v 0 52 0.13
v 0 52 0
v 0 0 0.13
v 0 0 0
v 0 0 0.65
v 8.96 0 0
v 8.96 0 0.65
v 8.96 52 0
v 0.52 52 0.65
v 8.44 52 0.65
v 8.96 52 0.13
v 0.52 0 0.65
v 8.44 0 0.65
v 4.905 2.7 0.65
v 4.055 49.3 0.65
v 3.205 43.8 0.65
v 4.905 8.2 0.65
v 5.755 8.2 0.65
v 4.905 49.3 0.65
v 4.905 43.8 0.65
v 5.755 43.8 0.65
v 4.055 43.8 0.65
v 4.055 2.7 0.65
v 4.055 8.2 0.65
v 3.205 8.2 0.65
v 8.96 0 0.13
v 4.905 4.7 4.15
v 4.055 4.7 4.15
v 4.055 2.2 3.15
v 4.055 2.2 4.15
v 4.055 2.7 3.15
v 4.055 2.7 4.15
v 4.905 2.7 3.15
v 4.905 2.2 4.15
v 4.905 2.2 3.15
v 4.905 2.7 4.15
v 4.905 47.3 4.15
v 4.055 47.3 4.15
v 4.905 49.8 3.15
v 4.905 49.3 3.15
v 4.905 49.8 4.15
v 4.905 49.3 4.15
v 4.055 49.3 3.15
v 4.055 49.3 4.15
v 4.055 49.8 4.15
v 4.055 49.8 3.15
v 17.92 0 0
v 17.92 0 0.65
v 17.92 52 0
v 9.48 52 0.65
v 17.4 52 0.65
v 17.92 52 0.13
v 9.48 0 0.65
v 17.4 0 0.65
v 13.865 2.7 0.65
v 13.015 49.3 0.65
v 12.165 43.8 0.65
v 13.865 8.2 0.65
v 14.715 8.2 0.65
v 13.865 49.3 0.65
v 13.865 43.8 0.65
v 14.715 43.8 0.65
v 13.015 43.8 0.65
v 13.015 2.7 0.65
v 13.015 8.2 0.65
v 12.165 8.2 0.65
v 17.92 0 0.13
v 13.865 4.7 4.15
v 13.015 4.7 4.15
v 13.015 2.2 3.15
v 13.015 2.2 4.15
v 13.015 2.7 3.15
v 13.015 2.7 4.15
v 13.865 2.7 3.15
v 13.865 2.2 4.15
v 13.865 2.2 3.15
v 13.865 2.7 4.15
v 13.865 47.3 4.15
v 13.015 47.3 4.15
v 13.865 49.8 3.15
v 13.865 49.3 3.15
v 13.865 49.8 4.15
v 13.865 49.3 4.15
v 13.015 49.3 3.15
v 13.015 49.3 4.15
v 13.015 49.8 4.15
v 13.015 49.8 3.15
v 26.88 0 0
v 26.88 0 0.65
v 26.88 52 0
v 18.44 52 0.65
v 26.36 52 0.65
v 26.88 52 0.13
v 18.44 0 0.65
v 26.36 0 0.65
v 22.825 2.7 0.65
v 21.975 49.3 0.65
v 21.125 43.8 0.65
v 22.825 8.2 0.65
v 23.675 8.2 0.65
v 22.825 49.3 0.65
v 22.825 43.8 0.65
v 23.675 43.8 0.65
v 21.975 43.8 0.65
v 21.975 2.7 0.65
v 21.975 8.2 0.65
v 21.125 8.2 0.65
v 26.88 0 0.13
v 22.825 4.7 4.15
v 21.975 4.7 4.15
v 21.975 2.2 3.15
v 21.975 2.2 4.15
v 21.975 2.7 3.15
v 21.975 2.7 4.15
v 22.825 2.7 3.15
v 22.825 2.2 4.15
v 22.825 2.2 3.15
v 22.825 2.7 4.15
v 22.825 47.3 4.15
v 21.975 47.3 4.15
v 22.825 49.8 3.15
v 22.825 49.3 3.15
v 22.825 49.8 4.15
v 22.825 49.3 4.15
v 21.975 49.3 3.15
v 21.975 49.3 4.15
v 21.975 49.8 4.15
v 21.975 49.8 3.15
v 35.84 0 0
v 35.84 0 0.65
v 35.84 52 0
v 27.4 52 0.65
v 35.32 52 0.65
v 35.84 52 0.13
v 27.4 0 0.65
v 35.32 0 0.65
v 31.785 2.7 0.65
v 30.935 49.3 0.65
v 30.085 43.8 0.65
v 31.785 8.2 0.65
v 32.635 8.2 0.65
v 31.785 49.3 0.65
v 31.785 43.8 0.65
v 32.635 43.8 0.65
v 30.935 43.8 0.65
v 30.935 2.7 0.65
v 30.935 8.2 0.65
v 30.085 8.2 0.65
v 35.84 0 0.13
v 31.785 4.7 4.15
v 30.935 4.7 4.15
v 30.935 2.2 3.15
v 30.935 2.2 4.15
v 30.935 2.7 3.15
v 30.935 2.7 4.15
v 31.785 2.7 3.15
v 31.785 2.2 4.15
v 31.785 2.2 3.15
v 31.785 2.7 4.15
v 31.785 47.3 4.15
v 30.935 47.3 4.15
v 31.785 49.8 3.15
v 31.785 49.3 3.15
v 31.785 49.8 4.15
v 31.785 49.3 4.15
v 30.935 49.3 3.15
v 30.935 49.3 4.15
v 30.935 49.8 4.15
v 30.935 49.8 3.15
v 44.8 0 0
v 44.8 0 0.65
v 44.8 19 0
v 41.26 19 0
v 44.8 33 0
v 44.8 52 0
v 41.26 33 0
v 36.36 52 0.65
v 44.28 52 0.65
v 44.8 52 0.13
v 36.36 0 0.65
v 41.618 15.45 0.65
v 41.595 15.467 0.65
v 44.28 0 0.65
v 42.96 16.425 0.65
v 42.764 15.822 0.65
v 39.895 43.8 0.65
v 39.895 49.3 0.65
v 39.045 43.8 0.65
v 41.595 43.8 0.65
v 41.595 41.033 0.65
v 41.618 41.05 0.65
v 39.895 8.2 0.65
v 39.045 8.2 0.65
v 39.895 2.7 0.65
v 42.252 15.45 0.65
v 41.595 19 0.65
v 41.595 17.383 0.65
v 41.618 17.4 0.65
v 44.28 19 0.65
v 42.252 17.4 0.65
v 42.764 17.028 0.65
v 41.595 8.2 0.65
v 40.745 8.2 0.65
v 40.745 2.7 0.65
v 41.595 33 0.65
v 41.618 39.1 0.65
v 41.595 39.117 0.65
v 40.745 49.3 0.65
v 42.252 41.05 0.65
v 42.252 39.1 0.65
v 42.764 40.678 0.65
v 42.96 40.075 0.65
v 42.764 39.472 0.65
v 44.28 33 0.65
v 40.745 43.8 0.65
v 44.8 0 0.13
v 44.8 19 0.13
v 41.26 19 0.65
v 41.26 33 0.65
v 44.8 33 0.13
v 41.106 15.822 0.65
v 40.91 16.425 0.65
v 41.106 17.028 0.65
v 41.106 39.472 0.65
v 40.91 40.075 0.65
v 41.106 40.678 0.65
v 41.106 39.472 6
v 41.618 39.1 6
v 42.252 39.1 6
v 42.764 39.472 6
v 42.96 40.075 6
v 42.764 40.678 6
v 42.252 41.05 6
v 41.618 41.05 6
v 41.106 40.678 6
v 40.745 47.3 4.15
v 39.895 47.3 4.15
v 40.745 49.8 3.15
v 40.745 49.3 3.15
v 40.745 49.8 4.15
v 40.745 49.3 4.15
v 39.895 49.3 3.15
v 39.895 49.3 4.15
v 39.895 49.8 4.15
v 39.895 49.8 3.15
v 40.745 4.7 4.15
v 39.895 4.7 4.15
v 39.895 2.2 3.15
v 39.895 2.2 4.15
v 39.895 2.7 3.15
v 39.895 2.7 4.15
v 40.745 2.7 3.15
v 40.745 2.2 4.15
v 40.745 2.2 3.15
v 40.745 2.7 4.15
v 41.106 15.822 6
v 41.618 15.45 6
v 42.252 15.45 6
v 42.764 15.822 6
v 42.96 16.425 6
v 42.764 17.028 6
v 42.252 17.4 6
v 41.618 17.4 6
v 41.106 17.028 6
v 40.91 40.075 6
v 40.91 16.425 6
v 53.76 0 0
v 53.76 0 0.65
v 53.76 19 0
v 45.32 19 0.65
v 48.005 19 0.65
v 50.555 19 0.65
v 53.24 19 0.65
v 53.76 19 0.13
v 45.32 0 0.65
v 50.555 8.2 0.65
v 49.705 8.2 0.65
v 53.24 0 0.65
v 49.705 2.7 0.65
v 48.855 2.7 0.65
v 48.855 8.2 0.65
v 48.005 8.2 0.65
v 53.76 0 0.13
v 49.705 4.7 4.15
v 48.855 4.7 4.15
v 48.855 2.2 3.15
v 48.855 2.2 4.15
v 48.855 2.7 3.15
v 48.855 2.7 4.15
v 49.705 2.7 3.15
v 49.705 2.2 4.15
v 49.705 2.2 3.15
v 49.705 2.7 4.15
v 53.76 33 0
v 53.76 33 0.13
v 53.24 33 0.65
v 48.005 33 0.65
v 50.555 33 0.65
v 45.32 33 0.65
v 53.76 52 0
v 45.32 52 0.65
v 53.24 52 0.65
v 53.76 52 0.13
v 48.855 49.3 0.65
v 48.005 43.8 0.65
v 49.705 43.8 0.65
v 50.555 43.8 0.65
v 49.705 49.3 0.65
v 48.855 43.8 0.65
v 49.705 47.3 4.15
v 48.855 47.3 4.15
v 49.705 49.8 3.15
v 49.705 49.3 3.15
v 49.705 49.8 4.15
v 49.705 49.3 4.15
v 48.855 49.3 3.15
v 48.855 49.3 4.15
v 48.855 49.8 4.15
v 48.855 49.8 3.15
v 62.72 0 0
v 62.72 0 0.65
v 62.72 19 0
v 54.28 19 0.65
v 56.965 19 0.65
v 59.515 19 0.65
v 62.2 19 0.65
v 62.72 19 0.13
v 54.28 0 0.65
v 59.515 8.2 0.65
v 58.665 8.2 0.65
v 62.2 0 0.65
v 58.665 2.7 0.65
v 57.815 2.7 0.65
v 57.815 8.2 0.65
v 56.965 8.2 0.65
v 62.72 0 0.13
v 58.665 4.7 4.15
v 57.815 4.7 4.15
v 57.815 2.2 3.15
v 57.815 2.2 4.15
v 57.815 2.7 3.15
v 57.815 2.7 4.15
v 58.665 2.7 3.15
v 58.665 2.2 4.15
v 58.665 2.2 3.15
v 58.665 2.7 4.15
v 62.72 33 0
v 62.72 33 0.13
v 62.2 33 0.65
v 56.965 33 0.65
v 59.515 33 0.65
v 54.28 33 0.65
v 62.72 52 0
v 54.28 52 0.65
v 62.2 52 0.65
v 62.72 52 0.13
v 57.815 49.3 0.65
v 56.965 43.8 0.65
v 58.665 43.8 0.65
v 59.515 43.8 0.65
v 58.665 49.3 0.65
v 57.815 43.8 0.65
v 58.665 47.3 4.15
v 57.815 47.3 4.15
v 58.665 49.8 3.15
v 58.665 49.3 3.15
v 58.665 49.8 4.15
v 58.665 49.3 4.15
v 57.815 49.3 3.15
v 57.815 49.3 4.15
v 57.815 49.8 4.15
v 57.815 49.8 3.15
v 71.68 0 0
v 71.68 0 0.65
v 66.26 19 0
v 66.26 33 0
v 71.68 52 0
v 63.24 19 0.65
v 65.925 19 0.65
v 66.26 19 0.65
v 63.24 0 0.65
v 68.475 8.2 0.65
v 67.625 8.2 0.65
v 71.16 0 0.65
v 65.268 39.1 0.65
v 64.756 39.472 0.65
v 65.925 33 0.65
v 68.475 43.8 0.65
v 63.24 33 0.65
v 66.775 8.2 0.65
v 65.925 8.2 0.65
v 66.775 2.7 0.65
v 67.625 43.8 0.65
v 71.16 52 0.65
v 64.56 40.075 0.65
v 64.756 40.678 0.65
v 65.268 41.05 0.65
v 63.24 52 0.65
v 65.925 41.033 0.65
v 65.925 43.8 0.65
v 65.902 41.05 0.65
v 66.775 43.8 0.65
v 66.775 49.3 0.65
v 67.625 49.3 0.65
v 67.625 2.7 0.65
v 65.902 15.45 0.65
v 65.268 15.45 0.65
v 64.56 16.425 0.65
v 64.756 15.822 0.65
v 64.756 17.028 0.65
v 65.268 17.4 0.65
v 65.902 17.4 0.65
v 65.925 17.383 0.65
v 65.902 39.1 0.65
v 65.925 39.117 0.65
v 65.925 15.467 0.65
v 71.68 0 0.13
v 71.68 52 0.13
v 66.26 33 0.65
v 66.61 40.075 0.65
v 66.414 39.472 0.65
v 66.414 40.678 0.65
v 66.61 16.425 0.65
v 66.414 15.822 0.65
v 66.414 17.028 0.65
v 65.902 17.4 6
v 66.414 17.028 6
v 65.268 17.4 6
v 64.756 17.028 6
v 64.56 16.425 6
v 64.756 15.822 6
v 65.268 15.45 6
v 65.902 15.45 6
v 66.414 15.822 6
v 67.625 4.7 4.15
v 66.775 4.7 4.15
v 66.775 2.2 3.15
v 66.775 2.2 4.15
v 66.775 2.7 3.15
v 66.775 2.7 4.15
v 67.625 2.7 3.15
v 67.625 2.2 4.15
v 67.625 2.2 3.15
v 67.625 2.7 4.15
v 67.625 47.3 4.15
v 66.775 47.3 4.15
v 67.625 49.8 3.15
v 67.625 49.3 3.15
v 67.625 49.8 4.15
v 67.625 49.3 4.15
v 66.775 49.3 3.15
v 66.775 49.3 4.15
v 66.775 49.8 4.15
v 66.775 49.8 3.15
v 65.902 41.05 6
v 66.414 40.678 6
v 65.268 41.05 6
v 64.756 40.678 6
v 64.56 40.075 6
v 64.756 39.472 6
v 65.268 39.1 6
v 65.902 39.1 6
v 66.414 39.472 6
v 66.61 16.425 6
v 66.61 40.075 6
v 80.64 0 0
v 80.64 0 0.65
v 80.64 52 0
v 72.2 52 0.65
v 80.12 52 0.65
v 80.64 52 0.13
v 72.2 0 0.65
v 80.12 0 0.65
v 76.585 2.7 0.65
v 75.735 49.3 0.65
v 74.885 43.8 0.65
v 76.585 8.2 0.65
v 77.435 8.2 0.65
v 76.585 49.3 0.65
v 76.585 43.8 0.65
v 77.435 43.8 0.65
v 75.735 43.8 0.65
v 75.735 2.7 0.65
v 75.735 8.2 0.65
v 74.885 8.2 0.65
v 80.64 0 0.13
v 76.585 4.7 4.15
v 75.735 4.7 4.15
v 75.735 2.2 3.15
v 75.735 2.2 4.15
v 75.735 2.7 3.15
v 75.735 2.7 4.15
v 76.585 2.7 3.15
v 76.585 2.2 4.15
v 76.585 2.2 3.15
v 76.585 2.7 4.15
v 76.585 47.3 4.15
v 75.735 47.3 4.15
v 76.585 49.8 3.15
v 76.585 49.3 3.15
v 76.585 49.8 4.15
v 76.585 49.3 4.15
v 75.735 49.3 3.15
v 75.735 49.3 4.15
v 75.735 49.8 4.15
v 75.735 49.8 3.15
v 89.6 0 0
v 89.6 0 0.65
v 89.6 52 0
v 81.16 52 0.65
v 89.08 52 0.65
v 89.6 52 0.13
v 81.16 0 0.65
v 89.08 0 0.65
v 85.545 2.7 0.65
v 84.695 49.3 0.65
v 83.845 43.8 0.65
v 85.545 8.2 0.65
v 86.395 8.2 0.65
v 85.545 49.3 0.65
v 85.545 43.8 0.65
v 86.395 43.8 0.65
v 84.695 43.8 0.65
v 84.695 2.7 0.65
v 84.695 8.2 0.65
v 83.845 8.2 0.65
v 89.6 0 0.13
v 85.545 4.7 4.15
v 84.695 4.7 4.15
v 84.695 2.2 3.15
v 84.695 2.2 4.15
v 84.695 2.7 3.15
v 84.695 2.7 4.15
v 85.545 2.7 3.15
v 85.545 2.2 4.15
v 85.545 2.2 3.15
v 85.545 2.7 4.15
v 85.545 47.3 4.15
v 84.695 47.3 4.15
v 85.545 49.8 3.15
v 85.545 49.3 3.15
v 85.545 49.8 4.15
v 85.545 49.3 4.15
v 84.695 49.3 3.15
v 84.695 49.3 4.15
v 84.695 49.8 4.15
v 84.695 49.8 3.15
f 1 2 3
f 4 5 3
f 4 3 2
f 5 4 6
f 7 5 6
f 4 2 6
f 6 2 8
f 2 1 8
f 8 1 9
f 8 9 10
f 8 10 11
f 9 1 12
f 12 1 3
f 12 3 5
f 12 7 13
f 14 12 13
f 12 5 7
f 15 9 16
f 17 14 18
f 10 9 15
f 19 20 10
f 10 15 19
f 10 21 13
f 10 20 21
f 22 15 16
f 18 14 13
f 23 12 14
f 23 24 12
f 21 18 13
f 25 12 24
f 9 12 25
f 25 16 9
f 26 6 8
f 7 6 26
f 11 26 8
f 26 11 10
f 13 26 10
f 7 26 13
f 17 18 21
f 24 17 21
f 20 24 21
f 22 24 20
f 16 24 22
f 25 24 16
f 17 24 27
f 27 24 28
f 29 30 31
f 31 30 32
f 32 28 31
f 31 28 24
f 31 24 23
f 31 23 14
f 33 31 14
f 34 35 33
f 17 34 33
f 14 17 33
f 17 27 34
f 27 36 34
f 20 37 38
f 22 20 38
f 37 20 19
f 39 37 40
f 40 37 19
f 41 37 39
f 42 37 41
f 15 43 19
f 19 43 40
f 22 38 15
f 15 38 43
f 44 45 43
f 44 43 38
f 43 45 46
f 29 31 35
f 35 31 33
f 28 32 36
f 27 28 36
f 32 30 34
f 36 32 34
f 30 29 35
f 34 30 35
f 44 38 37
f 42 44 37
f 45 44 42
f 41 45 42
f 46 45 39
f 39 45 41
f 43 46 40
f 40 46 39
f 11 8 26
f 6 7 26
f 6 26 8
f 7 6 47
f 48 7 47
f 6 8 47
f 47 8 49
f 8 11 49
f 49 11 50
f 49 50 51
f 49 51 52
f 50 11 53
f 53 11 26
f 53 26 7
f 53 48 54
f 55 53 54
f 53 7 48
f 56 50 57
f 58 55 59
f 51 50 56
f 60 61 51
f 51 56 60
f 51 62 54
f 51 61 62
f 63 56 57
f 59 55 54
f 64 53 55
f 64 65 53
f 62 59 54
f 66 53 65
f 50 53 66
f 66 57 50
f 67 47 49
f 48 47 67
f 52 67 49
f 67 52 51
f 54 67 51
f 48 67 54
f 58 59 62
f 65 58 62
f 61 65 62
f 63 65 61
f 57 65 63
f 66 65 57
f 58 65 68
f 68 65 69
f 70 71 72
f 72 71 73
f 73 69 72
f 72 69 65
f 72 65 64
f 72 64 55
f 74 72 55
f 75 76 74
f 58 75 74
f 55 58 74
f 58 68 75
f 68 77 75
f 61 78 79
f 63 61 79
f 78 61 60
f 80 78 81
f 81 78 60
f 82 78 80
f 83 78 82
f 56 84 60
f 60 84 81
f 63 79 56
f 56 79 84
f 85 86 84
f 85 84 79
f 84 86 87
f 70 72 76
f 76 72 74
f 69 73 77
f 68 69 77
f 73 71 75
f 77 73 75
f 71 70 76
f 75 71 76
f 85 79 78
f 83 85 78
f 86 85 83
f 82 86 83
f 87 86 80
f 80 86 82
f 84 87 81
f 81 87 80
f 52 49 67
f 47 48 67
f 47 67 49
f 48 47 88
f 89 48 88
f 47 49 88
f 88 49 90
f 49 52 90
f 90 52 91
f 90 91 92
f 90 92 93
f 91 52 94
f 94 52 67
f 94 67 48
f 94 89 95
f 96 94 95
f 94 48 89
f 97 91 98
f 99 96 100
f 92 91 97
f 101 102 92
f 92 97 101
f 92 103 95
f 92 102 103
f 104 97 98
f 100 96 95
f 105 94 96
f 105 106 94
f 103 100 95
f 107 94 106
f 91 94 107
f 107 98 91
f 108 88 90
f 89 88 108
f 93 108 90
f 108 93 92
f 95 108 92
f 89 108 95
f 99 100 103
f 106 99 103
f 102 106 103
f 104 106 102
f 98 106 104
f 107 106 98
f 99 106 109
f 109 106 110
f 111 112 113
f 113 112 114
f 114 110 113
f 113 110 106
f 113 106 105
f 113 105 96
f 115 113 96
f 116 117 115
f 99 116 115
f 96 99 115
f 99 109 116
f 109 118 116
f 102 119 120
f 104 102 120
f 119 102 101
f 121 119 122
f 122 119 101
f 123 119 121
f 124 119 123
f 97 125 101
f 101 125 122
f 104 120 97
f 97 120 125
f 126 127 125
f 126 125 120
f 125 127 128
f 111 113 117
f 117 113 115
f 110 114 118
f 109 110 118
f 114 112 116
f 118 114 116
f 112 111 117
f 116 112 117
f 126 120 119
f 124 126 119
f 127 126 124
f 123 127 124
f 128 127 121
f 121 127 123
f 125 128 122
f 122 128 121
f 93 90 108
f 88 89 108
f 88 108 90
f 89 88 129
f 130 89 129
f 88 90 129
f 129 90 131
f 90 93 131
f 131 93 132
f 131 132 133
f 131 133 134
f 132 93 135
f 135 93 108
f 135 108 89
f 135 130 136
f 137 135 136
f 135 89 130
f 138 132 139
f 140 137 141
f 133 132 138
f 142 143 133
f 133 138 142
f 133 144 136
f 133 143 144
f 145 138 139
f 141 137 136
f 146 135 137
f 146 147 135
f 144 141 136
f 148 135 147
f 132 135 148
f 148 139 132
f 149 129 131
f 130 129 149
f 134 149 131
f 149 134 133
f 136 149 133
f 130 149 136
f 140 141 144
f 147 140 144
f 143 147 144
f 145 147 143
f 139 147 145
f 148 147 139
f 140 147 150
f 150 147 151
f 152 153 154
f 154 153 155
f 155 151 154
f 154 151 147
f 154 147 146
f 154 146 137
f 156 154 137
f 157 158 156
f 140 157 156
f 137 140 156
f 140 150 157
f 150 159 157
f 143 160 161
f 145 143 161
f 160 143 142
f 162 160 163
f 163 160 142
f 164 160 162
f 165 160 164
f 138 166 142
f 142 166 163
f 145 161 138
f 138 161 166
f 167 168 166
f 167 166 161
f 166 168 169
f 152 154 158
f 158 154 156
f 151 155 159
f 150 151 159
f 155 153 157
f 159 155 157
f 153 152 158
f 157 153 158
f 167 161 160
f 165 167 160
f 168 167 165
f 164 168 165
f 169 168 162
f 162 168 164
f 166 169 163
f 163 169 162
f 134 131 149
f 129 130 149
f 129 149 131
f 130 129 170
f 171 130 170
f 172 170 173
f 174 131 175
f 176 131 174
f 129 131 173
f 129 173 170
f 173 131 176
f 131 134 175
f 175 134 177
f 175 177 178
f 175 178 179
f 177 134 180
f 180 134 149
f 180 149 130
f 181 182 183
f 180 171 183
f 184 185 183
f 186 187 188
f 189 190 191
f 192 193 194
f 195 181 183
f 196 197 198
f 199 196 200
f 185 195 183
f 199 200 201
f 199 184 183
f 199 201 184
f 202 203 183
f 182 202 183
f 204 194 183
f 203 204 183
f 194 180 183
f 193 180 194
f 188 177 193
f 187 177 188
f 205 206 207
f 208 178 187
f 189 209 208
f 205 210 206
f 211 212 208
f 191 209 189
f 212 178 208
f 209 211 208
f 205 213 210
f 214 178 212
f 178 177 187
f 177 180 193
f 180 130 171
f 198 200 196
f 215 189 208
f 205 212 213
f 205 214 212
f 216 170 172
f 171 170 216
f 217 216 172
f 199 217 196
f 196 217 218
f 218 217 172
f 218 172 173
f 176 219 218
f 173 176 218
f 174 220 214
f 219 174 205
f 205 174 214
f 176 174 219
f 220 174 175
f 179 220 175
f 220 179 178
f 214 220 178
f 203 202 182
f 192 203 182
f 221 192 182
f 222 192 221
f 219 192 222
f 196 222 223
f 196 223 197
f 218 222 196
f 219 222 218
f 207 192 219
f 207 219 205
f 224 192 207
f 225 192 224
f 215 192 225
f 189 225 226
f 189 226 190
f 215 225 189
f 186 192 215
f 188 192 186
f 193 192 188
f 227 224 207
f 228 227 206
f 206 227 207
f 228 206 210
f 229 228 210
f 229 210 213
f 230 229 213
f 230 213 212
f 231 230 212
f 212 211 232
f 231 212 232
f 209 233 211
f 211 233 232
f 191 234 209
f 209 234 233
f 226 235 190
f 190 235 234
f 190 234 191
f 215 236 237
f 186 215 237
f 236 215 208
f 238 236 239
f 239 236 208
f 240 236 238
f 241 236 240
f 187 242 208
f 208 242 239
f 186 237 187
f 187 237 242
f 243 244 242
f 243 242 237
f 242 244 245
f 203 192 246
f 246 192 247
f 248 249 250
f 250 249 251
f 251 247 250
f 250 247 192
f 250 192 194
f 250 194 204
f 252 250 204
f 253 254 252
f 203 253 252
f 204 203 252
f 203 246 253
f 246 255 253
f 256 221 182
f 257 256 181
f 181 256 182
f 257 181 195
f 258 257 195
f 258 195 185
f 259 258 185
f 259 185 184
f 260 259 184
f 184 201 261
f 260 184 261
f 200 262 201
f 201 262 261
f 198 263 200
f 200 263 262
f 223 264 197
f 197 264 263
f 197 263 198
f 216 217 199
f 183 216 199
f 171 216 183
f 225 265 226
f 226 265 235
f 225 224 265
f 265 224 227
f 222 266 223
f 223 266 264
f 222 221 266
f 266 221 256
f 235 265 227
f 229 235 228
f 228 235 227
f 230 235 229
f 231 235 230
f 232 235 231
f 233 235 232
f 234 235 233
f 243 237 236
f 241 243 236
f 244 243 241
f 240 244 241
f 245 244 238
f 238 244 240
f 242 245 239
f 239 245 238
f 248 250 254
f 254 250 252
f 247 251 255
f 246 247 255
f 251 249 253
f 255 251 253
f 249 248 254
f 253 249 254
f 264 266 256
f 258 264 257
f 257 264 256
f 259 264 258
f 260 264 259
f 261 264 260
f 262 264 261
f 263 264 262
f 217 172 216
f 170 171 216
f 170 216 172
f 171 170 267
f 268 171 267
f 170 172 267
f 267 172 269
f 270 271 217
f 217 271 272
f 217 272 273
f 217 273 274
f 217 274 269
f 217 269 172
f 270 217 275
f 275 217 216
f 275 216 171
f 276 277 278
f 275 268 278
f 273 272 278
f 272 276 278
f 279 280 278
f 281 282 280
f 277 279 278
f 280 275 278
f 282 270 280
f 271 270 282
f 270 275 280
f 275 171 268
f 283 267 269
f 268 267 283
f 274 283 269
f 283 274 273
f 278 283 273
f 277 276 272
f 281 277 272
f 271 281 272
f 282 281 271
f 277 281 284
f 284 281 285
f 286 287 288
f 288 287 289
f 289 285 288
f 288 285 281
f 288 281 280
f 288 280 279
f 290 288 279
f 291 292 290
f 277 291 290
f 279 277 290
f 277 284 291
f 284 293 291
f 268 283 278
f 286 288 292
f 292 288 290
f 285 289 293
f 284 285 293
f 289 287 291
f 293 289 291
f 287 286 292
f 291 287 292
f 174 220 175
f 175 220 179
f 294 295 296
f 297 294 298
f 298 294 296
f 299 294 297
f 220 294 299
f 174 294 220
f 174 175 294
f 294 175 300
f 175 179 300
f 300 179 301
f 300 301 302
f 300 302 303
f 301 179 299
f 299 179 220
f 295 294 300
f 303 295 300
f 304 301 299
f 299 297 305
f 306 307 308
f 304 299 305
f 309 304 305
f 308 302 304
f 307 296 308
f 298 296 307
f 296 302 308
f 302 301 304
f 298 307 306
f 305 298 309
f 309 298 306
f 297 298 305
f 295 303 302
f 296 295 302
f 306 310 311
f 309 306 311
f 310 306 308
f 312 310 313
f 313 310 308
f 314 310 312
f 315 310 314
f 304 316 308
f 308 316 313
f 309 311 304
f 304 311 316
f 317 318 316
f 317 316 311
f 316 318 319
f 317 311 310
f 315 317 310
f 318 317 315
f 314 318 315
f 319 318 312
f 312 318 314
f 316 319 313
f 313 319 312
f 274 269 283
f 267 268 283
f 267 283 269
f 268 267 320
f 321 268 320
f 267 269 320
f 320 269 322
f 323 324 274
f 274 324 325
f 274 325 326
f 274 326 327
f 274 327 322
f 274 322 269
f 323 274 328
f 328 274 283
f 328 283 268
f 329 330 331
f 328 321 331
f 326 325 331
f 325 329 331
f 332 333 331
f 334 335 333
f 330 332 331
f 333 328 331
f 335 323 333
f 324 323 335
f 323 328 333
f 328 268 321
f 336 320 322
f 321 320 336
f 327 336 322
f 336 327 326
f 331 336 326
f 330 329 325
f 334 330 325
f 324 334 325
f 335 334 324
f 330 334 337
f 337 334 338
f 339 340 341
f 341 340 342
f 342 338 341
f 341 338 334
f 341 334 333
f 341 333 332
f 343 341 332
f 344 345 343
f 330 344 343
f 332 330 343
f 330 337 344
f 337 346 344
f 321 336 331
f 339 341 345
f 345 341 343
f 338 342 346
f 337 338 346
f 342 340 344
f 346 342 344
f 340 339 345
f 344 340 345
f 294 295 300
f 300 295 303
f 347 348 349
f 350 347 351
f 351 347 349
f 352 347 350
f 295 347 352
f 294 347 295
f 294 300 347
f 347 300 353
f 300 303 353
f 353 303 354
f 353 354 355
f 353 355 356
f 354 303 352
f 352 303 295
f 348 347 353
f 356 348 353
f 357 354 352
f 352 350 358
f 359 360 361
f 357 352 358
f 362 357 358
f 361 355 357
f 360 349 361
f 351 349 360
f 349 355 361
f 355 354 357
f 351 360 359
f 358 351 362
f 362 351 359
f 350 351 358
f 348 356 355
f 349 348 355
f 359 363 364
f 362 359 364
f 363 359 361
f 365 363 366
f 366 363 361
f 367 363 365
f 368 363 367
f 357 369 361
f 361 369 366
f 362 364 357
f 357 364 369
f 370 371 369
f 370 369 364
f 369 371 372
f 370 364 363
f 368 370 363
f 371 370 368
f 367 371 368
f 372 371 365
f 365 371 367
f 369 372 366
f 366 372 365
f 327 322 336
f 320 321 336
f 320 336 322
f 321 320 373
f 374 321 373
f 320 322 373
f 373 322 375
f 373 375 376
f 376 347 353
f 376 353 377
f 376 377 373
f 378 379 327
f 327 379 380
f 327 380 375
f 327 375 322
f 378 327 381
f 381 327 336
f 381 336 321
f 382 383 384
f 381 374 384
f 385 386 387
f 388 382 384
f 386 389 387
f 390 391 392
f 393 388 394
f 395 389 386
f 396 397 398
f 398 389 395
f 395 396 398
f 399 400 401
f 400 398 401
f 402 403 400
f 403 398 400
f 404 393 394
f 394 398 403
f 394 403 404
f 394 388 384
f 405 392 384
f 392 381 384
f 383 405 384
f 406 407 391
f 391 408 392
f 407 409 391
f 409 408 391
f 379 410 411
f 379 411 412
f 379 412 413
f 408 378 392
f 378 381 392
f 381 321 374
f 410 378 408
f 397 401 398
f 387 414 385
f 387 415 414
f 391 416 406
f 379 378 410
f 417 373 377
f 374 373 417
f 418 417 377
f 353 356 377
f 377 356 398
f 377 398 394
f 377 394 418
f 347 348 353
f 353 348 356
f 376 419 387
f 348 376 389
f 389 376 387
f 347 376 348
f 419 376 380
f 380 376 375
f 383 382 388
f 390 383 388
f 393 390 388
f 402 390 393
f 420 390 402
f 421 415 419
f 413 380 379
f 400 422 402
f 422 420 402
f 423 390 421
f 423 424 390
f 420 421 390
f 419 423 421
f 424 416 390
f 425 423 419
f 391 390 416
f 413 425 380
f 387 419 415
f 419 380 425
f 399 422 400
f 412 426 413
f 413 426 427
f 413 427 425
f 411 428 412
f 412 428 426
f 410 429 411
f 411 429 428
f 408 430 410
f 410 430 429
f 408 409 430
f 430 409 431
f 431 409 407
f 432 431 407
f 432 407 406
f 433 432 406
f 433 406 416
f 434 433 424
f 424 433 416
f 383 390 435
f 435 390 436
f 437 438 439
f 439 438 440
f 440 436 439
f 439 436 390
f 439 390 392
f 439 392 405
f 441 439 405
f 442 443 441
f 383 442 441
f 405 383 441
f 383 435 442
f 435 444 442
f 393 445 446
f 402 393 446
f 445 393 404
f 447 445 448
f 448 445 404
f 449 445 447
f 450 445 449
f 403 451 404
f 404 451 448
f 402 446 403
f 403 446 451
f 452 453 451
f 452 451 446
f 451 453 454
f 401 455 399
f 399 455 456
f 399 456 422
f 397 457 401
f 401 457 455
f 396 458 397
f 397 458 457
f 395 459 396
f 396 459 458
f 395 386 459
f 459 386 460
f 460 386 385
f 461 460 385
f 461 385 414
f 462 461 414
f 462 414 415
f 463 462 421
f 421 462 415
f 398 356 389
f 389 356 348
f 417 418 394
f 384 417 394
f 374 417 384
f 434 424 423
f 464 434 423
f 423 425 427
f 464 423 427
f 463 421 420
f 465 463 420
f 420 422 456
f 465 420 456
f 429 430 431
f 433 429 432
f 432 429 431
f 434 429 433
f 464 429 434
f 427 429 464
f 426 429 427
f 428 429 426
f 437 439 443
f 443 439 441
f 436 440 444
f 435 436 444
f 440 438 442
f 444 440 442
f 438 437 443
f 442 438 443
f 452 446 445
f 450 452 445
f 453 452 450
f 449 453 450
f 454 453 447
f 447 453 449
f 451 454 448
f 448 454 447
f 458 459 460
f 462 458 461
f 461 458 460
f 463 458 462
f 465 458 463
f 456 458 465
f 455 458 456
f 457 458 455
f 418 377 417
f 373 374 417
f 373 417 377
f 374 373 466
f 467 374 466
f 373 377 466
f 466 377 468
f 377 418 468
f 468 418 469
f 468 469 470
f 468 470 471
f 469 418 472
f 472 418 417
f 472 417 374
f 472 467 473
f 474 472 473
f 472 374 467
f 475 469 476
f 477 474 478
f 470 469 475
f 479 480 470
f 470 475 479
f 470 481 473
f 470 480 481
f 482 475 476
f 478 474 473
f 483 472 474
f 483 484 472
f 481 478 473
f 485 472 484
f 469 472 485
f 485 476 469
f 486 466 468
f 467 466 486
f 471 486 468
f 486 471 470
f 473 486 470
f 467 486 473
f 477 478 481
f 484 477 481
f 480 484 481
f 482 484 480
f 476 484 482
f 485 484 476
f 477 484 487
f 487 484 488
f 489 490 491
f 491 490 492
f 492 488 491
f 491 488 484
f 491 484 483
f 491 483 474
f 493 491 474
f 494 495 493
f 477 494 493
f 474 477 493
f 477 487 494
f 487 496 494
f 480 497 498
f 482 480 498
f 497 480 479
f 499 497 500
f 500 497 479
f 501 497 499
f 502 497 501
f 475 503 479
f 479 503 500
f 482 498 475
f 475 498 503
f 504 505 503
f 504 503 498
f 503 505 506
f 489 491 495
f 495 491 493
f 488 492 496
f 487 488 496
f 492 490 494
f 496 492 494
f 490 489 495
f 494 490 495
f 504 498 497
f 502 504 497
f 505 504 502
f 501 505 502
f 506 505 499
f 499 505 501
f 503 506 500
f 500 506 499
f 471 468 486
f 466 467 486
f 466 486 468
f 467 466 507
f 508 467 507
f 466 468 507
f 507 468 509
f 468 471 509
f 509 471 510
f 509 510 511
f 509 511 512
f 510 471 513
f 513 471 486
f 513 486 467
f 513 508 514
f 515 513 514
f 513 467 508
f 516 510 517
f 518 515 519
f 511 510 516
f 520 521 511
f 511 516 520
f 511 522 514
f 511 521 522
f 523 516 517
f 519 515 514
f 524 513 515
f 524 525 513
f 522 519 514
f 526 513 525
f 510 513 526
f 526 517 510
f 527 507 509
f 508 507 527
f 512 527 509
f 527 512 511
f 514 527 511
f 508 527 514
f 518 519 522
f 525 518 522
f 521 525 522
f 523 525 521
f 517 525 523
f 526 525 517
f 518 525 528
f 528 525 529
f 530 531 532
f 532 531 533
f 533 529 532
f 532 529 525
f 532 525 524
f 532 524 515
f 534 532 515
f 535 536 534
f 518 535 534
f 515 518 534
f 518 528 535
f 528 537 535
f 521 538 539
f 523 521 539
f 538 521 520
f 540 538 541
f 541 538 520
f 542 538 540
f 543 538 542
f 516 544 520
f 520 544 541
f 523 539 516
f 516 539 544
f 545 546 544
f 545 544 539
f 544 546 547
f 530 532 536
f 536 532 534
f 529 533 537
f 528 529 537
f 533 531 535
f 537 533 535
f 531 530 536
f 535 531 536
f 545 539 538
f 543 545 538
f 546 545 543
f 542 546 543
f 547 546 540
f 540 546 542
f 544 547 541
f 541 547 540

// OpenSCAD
/* 
**
** Cache boitier DIN
**
** 0.3; 0.35
** 100%; rectilinear; fill angle = 0
** filament diametre = 2.2
** 210; 210
** 75; 55
*/

wElem = 8.96;    // 8.74 auparavant
                 // 1 module = 17,9 mm
hElem = 52;
hHole = 46.6;
eElem = 0.65;
wRay = 0.85;
hRay = 3.5;
hTop = 2;
grip = 0.5;
eCase = 2.5;

sd = 2.05;       // Diamètre des pine de centrage
sh = 6.0;
sEcart = 23.65;  // Ecart en largeur
$fn = 10;
sWidth = 25.0;   // Largeur de l'écran
sHeight = 14.0;  // Hauteur de l'écran
sFoot = 4.5;     // Partie de l'écran non fonctionnelle
xPos = 6.0;      // Position, en nombre d'éléments
//xPos = 2.5;      // Position, en nombre d'éléments



// Appel de la fonction principale, en indiquant le nombre d'éléments
difference() {
  cacheDIN(10);
  //cacheDIN(5);
  translate([wElem*xPos - sWidth/2, (hElem-sHeight)/2, -1]) cube([sWidth, sHeight, sh]);
}

translate([sd/2 + wElem*xPos - (sEcart+sd)/2, (hElem-sEcart+sFoot)/2.0, 0]) {
  translate([0, 0, 0]) cylinder(d=sd, h=sh);
  translate([sEcart, 0, 0]) cylinder(d=sd, h=sh);
  translate([0, sEcart, 0]) cylinder(d=sd, h=sh);
  translate([sEcart, sEcart, 0]) cylinder(d=sd, h=sh);
}

module cacheDIN(nElem) {
  x = (hElem-hHole)/2+hTop+hRay;
  m = (wElem-wRay)/2-wRay;
  for (n = [0 : nElem-1]) {
    translate([n*wElem, 0, 0]) difference() {
      union() {
        // plaque de base
        cube([wElem, hElem, eElem]);
        // arrête de maintient
        translate([(wElem-wRay)/2, (hElem-hHole)/2, eElem]) cube([wRay, hHole, hRay]);
        translate([(wElem-wRay)/2, (hElem-hHole)/2-grip, eElem+eCase]) cube([wRay, hHole+grip*2, hRay-eCase]);
      }
      union() {
        for (i = [0, 1]) {
          translate([i*wElem, 0, eElem*1.2]) rotate([-90, 0, 0]) cylinder(d=eElem*2, h=hElem, $fn=4);
        }
        // creux dans l'arrête de maintient
        hull() {  
          translate([m, x, hRay+eElem]) rotate([0, 90, 0]) cylinder(d=hRay*2, h=wRay*3, $fn=4);
          translate([m, hElem-x, hRay+eElem]) rotate([0, 90, 0]) cylinder(d=hRay*2, h=wRay*3, $fn=4);
        }
      }
    }
  }
}
